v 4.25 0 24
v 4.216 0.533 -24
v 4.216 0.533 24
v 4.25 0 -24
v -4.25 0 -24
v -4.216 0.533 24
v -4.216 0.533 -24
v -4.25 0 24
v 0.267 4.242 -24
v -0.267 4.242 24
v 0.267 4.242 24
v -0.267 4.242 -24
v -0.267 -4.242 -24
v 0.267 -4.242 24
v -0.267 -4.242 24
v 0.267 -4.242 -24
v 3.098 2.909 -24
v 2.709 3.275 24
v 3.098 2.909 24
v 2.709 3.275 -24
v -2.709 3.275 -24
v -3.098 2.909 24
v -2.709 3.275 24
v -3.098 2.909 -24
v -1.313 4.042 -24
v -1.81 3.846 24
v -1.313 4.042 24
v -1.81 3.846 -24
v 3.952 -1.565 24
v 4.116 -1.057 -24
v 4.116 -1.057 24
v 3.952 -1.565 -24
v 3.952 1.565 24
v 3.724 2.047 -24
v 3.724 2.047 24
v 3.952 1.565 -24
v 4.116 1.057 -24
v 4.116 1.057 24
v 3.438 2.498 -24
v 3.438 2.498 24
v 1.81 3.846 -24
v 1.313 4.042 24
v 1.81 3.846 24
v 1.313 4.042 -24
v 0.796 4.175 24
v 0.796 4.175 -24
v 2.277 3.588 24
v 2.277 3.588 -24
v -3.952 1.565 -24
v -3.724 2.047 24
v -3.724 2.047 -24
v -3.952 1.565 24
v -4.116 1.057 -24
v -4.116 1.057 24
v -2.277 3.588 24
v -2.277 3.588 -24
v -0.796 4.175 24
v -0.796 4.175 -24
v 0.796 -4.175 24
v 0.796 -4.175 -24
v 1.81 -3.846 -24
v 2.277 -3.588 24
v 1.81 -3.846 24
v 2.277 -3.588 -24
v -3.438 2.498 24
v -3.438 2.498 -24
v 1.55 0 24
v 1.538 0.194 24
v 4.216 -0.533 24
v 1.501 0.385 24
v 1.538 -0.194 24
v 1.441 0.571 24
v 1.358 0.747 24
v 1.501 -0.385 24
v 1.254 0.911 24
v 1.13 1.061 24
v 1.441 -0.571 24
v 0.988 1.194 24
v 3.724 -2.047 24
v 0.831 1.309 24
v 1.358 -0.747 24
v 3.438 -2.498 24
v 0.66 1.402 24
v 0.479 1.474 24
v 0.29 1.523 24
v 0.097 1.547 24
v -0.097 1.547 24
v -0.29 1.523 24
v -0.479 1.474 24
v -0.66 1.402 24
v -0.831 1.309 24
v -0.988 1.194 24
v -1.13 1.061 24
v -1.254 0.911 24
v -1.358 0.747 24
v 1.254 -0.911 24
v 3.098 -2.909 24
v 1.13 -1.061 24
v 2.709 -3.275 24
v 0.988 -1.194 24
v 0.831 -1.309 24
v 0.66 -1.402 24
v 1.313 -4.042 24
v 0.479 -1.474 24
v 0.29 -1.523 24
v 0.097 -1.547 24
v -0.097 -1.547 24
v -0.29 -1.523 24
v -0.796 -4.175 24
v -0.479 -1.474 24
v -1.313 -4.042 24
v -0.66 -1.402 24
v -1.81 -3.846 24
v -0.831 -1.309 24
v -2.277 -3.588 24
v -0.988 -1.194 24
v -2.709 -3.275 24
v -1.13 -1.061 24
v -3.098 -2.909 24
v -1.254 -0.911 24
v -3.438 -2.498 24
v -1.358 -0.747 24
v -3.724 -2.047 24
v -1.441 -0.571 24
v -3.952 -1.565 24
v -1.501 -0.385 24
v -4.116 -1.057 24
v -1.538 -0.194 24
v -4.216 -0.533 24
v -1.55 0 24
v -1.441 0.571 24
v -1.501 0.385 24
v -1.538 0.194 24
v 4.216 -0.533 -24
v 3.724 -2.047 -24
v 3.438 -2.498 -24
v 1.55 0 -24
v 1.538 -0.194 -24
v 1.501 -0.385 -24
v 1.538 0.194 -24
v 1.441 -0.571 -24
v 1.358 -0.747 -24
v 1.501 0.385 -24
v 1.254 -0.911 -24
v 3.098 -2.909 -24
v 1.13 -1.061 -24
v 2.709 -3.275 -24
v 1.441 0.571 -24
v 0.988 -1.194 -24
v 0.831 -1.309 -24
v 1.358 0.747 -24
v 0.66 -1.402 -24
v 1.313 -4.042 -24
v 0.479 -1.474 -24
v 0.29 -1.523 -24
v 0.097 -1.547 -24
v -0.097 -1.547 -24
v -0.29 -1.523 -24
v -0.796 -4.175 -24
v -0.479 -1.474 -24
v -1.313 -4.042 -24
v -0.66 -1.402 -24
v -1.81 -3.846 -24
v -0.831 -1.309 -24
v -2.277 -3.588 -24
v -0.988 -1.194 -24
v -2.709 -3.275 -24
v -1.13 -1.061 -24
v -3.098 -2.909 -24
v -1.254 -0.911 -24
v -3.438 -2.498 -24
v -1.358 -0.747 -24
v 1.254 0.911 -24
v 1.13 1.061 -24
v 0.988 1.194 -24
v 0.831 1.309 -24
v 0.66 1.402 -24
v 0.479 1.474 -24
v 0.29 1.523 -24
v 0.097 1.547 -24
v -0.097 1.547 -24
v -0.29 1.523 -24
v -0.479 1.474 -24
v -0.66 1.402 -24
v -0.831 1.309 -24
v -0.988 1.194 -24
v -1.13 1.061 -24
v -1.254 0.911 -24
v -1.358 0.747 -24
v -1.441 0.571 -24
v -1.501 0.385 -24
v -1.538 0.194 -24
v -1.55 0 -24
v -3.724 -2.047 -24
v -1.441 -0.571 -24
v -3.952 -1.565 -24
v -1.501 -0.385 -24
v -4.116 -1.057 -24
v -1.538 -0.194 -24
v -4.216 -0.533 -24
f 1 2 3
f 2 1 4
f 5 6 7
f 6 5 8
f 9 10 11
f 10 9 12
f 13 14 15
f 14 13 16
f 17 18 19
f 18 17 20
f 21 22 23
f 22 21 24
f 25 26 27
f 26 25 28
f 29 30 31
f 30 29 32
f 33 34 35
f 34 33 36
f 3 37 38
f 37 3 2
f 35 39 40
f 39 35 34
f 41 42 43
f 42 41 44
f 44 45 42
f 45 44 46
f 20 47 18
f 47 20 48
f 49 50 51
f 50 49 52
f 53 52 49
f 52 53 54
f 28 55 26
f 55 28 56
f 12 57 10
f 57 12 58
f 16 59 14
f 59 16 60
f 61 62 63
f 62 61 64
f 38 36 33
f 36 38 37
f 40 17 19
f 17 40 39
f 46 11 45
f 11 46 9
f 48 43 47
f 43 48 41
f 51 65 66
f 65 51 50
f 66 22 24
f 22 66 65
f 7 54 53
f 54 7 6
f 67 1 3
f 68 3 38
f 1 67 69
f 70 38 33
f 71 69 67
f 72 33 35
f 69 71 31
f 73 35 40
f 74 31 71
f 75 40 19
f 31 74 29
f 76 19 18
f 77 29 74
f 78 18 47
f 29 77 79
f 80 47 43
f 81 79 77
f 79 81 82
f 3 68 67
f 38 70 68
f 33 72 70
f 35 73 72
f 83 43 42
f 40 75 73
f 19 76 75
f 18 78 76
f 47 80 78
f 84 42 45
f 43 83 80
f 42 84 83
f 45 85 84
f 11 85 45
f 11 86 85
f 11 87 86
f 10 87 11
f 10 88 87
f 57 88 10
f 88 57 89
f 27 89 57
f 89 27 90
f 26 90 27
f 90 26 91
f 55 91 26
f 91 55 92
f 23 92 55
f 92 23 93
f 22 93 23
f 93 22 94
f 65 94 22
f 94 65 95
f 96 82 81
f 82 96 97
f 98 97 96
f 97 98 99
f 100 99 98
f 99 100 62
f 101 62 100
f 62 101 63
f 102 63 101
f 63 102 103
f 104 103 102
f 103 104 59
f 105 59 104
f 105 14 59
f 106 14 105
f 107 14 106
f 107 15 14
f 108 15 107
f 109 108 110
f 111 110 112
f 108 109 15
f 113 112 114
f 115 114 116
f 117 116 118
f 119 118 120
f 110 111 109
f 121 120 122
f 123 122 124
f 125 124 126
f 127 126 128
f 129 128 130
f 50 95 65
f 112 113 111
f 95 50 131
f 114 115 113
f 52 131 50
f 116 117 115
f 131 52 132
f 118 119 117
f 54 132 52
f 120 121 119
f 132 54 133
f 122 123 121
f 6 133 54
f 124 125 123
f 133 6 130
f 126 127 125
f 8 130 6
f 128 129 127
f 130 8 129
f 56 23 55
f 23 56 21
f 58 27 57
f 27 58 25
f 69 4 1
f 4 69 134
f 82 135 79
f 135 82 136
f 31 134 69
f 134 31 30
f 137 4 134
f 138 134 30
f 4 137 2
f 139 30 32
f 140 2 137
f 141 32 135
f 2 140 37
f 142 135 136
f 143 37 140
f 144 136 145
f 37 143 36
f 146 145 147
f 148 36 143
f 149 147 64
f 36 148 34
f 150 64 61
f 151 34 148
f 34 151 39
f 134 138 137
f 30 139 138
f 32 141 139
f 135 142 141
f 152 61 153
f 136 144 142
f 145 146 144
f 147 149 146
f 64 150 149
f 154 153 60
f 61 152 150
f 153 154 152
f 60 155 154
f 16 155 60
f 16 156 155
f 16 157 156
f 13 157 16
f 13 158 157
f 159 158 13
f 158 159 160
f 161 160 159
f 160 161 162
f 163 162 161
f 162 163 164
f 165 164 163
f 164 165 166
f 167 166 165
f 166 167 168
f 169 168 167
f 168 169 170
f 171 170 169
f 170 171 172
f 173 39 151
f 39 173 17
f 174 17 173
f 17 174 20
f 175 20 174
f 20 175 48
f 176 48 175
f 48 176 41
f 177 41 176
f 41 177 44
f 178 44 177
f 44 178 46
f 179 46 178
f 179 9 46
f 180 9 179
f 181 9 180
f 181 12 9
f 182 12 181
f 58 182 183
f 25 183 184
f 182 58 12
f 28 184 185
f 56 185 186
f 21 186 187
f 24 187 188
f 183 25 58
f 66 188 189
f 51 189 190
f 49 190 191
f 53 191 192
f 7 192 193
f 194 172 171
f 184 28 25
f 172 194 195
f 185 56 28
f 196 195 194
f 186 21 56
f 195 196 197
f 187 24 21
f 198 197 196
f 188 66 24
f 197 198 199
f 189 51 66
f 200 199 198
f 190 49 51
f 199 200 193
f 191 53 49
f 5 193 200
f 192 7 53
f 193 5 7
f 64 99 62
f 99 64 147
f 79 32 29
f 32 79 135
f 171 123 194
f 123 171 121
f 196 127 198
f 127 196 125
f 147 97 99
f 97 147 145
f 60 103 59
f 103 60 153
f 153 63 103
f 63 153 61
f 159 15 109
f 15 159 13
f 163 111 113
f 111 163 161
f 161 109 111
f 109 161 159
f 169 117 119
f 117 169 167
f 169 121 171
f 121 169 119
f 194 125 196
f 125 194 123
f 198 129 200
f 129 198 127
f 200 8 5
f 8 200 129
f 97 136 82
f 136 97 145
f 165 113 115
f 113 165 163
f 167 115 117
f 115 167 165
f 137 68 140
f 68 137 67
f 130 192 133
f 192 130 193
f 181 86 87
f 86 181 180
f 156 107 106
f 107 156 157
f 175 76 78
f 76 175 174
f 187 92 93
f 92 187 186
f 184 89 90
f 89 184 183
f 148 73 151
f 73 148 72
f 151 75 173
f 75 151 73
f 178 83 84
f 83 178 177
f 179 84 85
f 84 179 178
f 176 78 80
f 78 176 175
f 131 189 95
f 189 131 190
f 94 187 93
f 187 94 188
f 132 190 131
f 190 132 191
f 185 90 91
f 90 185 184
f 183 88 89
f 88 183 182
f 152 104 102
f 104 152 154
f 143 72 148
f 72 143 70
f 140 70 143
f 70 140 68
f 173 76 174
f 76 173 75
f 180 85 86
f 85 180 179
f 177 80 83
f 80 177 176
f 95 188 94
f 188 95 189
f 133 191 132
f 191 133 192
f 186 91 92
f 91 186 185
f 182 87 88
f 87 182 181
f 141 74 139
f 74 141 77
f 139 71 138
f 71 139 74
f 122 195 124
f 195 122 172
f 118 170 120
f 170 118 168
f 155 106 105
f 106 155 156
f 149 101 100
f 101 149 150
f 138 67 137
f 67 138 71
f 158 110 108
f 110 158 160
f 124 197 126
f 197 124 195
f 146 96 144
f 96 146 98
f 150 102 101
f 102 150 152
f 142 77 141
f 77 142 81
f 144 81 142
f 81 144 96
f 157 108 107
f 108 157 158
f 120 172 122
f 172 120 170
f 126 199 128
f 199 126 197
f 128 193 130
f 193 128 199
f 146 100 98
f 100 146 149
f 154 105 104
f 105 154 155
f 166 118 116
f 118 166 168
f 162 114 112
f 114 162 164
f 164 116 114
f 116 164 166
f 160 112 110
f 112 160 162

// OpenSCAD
$fn = 50;


difference() {
	union() {
		translate(v = [0, 0, -24.0000000000]) {
			cylinder(h = 48, r = 4.2500000000);
		}
	}
	union() {
		translate(v = [0, 0, -100.0000000000]) {
			cylinder(h = 200, r = 1.5500000000);
		}
	}
}
